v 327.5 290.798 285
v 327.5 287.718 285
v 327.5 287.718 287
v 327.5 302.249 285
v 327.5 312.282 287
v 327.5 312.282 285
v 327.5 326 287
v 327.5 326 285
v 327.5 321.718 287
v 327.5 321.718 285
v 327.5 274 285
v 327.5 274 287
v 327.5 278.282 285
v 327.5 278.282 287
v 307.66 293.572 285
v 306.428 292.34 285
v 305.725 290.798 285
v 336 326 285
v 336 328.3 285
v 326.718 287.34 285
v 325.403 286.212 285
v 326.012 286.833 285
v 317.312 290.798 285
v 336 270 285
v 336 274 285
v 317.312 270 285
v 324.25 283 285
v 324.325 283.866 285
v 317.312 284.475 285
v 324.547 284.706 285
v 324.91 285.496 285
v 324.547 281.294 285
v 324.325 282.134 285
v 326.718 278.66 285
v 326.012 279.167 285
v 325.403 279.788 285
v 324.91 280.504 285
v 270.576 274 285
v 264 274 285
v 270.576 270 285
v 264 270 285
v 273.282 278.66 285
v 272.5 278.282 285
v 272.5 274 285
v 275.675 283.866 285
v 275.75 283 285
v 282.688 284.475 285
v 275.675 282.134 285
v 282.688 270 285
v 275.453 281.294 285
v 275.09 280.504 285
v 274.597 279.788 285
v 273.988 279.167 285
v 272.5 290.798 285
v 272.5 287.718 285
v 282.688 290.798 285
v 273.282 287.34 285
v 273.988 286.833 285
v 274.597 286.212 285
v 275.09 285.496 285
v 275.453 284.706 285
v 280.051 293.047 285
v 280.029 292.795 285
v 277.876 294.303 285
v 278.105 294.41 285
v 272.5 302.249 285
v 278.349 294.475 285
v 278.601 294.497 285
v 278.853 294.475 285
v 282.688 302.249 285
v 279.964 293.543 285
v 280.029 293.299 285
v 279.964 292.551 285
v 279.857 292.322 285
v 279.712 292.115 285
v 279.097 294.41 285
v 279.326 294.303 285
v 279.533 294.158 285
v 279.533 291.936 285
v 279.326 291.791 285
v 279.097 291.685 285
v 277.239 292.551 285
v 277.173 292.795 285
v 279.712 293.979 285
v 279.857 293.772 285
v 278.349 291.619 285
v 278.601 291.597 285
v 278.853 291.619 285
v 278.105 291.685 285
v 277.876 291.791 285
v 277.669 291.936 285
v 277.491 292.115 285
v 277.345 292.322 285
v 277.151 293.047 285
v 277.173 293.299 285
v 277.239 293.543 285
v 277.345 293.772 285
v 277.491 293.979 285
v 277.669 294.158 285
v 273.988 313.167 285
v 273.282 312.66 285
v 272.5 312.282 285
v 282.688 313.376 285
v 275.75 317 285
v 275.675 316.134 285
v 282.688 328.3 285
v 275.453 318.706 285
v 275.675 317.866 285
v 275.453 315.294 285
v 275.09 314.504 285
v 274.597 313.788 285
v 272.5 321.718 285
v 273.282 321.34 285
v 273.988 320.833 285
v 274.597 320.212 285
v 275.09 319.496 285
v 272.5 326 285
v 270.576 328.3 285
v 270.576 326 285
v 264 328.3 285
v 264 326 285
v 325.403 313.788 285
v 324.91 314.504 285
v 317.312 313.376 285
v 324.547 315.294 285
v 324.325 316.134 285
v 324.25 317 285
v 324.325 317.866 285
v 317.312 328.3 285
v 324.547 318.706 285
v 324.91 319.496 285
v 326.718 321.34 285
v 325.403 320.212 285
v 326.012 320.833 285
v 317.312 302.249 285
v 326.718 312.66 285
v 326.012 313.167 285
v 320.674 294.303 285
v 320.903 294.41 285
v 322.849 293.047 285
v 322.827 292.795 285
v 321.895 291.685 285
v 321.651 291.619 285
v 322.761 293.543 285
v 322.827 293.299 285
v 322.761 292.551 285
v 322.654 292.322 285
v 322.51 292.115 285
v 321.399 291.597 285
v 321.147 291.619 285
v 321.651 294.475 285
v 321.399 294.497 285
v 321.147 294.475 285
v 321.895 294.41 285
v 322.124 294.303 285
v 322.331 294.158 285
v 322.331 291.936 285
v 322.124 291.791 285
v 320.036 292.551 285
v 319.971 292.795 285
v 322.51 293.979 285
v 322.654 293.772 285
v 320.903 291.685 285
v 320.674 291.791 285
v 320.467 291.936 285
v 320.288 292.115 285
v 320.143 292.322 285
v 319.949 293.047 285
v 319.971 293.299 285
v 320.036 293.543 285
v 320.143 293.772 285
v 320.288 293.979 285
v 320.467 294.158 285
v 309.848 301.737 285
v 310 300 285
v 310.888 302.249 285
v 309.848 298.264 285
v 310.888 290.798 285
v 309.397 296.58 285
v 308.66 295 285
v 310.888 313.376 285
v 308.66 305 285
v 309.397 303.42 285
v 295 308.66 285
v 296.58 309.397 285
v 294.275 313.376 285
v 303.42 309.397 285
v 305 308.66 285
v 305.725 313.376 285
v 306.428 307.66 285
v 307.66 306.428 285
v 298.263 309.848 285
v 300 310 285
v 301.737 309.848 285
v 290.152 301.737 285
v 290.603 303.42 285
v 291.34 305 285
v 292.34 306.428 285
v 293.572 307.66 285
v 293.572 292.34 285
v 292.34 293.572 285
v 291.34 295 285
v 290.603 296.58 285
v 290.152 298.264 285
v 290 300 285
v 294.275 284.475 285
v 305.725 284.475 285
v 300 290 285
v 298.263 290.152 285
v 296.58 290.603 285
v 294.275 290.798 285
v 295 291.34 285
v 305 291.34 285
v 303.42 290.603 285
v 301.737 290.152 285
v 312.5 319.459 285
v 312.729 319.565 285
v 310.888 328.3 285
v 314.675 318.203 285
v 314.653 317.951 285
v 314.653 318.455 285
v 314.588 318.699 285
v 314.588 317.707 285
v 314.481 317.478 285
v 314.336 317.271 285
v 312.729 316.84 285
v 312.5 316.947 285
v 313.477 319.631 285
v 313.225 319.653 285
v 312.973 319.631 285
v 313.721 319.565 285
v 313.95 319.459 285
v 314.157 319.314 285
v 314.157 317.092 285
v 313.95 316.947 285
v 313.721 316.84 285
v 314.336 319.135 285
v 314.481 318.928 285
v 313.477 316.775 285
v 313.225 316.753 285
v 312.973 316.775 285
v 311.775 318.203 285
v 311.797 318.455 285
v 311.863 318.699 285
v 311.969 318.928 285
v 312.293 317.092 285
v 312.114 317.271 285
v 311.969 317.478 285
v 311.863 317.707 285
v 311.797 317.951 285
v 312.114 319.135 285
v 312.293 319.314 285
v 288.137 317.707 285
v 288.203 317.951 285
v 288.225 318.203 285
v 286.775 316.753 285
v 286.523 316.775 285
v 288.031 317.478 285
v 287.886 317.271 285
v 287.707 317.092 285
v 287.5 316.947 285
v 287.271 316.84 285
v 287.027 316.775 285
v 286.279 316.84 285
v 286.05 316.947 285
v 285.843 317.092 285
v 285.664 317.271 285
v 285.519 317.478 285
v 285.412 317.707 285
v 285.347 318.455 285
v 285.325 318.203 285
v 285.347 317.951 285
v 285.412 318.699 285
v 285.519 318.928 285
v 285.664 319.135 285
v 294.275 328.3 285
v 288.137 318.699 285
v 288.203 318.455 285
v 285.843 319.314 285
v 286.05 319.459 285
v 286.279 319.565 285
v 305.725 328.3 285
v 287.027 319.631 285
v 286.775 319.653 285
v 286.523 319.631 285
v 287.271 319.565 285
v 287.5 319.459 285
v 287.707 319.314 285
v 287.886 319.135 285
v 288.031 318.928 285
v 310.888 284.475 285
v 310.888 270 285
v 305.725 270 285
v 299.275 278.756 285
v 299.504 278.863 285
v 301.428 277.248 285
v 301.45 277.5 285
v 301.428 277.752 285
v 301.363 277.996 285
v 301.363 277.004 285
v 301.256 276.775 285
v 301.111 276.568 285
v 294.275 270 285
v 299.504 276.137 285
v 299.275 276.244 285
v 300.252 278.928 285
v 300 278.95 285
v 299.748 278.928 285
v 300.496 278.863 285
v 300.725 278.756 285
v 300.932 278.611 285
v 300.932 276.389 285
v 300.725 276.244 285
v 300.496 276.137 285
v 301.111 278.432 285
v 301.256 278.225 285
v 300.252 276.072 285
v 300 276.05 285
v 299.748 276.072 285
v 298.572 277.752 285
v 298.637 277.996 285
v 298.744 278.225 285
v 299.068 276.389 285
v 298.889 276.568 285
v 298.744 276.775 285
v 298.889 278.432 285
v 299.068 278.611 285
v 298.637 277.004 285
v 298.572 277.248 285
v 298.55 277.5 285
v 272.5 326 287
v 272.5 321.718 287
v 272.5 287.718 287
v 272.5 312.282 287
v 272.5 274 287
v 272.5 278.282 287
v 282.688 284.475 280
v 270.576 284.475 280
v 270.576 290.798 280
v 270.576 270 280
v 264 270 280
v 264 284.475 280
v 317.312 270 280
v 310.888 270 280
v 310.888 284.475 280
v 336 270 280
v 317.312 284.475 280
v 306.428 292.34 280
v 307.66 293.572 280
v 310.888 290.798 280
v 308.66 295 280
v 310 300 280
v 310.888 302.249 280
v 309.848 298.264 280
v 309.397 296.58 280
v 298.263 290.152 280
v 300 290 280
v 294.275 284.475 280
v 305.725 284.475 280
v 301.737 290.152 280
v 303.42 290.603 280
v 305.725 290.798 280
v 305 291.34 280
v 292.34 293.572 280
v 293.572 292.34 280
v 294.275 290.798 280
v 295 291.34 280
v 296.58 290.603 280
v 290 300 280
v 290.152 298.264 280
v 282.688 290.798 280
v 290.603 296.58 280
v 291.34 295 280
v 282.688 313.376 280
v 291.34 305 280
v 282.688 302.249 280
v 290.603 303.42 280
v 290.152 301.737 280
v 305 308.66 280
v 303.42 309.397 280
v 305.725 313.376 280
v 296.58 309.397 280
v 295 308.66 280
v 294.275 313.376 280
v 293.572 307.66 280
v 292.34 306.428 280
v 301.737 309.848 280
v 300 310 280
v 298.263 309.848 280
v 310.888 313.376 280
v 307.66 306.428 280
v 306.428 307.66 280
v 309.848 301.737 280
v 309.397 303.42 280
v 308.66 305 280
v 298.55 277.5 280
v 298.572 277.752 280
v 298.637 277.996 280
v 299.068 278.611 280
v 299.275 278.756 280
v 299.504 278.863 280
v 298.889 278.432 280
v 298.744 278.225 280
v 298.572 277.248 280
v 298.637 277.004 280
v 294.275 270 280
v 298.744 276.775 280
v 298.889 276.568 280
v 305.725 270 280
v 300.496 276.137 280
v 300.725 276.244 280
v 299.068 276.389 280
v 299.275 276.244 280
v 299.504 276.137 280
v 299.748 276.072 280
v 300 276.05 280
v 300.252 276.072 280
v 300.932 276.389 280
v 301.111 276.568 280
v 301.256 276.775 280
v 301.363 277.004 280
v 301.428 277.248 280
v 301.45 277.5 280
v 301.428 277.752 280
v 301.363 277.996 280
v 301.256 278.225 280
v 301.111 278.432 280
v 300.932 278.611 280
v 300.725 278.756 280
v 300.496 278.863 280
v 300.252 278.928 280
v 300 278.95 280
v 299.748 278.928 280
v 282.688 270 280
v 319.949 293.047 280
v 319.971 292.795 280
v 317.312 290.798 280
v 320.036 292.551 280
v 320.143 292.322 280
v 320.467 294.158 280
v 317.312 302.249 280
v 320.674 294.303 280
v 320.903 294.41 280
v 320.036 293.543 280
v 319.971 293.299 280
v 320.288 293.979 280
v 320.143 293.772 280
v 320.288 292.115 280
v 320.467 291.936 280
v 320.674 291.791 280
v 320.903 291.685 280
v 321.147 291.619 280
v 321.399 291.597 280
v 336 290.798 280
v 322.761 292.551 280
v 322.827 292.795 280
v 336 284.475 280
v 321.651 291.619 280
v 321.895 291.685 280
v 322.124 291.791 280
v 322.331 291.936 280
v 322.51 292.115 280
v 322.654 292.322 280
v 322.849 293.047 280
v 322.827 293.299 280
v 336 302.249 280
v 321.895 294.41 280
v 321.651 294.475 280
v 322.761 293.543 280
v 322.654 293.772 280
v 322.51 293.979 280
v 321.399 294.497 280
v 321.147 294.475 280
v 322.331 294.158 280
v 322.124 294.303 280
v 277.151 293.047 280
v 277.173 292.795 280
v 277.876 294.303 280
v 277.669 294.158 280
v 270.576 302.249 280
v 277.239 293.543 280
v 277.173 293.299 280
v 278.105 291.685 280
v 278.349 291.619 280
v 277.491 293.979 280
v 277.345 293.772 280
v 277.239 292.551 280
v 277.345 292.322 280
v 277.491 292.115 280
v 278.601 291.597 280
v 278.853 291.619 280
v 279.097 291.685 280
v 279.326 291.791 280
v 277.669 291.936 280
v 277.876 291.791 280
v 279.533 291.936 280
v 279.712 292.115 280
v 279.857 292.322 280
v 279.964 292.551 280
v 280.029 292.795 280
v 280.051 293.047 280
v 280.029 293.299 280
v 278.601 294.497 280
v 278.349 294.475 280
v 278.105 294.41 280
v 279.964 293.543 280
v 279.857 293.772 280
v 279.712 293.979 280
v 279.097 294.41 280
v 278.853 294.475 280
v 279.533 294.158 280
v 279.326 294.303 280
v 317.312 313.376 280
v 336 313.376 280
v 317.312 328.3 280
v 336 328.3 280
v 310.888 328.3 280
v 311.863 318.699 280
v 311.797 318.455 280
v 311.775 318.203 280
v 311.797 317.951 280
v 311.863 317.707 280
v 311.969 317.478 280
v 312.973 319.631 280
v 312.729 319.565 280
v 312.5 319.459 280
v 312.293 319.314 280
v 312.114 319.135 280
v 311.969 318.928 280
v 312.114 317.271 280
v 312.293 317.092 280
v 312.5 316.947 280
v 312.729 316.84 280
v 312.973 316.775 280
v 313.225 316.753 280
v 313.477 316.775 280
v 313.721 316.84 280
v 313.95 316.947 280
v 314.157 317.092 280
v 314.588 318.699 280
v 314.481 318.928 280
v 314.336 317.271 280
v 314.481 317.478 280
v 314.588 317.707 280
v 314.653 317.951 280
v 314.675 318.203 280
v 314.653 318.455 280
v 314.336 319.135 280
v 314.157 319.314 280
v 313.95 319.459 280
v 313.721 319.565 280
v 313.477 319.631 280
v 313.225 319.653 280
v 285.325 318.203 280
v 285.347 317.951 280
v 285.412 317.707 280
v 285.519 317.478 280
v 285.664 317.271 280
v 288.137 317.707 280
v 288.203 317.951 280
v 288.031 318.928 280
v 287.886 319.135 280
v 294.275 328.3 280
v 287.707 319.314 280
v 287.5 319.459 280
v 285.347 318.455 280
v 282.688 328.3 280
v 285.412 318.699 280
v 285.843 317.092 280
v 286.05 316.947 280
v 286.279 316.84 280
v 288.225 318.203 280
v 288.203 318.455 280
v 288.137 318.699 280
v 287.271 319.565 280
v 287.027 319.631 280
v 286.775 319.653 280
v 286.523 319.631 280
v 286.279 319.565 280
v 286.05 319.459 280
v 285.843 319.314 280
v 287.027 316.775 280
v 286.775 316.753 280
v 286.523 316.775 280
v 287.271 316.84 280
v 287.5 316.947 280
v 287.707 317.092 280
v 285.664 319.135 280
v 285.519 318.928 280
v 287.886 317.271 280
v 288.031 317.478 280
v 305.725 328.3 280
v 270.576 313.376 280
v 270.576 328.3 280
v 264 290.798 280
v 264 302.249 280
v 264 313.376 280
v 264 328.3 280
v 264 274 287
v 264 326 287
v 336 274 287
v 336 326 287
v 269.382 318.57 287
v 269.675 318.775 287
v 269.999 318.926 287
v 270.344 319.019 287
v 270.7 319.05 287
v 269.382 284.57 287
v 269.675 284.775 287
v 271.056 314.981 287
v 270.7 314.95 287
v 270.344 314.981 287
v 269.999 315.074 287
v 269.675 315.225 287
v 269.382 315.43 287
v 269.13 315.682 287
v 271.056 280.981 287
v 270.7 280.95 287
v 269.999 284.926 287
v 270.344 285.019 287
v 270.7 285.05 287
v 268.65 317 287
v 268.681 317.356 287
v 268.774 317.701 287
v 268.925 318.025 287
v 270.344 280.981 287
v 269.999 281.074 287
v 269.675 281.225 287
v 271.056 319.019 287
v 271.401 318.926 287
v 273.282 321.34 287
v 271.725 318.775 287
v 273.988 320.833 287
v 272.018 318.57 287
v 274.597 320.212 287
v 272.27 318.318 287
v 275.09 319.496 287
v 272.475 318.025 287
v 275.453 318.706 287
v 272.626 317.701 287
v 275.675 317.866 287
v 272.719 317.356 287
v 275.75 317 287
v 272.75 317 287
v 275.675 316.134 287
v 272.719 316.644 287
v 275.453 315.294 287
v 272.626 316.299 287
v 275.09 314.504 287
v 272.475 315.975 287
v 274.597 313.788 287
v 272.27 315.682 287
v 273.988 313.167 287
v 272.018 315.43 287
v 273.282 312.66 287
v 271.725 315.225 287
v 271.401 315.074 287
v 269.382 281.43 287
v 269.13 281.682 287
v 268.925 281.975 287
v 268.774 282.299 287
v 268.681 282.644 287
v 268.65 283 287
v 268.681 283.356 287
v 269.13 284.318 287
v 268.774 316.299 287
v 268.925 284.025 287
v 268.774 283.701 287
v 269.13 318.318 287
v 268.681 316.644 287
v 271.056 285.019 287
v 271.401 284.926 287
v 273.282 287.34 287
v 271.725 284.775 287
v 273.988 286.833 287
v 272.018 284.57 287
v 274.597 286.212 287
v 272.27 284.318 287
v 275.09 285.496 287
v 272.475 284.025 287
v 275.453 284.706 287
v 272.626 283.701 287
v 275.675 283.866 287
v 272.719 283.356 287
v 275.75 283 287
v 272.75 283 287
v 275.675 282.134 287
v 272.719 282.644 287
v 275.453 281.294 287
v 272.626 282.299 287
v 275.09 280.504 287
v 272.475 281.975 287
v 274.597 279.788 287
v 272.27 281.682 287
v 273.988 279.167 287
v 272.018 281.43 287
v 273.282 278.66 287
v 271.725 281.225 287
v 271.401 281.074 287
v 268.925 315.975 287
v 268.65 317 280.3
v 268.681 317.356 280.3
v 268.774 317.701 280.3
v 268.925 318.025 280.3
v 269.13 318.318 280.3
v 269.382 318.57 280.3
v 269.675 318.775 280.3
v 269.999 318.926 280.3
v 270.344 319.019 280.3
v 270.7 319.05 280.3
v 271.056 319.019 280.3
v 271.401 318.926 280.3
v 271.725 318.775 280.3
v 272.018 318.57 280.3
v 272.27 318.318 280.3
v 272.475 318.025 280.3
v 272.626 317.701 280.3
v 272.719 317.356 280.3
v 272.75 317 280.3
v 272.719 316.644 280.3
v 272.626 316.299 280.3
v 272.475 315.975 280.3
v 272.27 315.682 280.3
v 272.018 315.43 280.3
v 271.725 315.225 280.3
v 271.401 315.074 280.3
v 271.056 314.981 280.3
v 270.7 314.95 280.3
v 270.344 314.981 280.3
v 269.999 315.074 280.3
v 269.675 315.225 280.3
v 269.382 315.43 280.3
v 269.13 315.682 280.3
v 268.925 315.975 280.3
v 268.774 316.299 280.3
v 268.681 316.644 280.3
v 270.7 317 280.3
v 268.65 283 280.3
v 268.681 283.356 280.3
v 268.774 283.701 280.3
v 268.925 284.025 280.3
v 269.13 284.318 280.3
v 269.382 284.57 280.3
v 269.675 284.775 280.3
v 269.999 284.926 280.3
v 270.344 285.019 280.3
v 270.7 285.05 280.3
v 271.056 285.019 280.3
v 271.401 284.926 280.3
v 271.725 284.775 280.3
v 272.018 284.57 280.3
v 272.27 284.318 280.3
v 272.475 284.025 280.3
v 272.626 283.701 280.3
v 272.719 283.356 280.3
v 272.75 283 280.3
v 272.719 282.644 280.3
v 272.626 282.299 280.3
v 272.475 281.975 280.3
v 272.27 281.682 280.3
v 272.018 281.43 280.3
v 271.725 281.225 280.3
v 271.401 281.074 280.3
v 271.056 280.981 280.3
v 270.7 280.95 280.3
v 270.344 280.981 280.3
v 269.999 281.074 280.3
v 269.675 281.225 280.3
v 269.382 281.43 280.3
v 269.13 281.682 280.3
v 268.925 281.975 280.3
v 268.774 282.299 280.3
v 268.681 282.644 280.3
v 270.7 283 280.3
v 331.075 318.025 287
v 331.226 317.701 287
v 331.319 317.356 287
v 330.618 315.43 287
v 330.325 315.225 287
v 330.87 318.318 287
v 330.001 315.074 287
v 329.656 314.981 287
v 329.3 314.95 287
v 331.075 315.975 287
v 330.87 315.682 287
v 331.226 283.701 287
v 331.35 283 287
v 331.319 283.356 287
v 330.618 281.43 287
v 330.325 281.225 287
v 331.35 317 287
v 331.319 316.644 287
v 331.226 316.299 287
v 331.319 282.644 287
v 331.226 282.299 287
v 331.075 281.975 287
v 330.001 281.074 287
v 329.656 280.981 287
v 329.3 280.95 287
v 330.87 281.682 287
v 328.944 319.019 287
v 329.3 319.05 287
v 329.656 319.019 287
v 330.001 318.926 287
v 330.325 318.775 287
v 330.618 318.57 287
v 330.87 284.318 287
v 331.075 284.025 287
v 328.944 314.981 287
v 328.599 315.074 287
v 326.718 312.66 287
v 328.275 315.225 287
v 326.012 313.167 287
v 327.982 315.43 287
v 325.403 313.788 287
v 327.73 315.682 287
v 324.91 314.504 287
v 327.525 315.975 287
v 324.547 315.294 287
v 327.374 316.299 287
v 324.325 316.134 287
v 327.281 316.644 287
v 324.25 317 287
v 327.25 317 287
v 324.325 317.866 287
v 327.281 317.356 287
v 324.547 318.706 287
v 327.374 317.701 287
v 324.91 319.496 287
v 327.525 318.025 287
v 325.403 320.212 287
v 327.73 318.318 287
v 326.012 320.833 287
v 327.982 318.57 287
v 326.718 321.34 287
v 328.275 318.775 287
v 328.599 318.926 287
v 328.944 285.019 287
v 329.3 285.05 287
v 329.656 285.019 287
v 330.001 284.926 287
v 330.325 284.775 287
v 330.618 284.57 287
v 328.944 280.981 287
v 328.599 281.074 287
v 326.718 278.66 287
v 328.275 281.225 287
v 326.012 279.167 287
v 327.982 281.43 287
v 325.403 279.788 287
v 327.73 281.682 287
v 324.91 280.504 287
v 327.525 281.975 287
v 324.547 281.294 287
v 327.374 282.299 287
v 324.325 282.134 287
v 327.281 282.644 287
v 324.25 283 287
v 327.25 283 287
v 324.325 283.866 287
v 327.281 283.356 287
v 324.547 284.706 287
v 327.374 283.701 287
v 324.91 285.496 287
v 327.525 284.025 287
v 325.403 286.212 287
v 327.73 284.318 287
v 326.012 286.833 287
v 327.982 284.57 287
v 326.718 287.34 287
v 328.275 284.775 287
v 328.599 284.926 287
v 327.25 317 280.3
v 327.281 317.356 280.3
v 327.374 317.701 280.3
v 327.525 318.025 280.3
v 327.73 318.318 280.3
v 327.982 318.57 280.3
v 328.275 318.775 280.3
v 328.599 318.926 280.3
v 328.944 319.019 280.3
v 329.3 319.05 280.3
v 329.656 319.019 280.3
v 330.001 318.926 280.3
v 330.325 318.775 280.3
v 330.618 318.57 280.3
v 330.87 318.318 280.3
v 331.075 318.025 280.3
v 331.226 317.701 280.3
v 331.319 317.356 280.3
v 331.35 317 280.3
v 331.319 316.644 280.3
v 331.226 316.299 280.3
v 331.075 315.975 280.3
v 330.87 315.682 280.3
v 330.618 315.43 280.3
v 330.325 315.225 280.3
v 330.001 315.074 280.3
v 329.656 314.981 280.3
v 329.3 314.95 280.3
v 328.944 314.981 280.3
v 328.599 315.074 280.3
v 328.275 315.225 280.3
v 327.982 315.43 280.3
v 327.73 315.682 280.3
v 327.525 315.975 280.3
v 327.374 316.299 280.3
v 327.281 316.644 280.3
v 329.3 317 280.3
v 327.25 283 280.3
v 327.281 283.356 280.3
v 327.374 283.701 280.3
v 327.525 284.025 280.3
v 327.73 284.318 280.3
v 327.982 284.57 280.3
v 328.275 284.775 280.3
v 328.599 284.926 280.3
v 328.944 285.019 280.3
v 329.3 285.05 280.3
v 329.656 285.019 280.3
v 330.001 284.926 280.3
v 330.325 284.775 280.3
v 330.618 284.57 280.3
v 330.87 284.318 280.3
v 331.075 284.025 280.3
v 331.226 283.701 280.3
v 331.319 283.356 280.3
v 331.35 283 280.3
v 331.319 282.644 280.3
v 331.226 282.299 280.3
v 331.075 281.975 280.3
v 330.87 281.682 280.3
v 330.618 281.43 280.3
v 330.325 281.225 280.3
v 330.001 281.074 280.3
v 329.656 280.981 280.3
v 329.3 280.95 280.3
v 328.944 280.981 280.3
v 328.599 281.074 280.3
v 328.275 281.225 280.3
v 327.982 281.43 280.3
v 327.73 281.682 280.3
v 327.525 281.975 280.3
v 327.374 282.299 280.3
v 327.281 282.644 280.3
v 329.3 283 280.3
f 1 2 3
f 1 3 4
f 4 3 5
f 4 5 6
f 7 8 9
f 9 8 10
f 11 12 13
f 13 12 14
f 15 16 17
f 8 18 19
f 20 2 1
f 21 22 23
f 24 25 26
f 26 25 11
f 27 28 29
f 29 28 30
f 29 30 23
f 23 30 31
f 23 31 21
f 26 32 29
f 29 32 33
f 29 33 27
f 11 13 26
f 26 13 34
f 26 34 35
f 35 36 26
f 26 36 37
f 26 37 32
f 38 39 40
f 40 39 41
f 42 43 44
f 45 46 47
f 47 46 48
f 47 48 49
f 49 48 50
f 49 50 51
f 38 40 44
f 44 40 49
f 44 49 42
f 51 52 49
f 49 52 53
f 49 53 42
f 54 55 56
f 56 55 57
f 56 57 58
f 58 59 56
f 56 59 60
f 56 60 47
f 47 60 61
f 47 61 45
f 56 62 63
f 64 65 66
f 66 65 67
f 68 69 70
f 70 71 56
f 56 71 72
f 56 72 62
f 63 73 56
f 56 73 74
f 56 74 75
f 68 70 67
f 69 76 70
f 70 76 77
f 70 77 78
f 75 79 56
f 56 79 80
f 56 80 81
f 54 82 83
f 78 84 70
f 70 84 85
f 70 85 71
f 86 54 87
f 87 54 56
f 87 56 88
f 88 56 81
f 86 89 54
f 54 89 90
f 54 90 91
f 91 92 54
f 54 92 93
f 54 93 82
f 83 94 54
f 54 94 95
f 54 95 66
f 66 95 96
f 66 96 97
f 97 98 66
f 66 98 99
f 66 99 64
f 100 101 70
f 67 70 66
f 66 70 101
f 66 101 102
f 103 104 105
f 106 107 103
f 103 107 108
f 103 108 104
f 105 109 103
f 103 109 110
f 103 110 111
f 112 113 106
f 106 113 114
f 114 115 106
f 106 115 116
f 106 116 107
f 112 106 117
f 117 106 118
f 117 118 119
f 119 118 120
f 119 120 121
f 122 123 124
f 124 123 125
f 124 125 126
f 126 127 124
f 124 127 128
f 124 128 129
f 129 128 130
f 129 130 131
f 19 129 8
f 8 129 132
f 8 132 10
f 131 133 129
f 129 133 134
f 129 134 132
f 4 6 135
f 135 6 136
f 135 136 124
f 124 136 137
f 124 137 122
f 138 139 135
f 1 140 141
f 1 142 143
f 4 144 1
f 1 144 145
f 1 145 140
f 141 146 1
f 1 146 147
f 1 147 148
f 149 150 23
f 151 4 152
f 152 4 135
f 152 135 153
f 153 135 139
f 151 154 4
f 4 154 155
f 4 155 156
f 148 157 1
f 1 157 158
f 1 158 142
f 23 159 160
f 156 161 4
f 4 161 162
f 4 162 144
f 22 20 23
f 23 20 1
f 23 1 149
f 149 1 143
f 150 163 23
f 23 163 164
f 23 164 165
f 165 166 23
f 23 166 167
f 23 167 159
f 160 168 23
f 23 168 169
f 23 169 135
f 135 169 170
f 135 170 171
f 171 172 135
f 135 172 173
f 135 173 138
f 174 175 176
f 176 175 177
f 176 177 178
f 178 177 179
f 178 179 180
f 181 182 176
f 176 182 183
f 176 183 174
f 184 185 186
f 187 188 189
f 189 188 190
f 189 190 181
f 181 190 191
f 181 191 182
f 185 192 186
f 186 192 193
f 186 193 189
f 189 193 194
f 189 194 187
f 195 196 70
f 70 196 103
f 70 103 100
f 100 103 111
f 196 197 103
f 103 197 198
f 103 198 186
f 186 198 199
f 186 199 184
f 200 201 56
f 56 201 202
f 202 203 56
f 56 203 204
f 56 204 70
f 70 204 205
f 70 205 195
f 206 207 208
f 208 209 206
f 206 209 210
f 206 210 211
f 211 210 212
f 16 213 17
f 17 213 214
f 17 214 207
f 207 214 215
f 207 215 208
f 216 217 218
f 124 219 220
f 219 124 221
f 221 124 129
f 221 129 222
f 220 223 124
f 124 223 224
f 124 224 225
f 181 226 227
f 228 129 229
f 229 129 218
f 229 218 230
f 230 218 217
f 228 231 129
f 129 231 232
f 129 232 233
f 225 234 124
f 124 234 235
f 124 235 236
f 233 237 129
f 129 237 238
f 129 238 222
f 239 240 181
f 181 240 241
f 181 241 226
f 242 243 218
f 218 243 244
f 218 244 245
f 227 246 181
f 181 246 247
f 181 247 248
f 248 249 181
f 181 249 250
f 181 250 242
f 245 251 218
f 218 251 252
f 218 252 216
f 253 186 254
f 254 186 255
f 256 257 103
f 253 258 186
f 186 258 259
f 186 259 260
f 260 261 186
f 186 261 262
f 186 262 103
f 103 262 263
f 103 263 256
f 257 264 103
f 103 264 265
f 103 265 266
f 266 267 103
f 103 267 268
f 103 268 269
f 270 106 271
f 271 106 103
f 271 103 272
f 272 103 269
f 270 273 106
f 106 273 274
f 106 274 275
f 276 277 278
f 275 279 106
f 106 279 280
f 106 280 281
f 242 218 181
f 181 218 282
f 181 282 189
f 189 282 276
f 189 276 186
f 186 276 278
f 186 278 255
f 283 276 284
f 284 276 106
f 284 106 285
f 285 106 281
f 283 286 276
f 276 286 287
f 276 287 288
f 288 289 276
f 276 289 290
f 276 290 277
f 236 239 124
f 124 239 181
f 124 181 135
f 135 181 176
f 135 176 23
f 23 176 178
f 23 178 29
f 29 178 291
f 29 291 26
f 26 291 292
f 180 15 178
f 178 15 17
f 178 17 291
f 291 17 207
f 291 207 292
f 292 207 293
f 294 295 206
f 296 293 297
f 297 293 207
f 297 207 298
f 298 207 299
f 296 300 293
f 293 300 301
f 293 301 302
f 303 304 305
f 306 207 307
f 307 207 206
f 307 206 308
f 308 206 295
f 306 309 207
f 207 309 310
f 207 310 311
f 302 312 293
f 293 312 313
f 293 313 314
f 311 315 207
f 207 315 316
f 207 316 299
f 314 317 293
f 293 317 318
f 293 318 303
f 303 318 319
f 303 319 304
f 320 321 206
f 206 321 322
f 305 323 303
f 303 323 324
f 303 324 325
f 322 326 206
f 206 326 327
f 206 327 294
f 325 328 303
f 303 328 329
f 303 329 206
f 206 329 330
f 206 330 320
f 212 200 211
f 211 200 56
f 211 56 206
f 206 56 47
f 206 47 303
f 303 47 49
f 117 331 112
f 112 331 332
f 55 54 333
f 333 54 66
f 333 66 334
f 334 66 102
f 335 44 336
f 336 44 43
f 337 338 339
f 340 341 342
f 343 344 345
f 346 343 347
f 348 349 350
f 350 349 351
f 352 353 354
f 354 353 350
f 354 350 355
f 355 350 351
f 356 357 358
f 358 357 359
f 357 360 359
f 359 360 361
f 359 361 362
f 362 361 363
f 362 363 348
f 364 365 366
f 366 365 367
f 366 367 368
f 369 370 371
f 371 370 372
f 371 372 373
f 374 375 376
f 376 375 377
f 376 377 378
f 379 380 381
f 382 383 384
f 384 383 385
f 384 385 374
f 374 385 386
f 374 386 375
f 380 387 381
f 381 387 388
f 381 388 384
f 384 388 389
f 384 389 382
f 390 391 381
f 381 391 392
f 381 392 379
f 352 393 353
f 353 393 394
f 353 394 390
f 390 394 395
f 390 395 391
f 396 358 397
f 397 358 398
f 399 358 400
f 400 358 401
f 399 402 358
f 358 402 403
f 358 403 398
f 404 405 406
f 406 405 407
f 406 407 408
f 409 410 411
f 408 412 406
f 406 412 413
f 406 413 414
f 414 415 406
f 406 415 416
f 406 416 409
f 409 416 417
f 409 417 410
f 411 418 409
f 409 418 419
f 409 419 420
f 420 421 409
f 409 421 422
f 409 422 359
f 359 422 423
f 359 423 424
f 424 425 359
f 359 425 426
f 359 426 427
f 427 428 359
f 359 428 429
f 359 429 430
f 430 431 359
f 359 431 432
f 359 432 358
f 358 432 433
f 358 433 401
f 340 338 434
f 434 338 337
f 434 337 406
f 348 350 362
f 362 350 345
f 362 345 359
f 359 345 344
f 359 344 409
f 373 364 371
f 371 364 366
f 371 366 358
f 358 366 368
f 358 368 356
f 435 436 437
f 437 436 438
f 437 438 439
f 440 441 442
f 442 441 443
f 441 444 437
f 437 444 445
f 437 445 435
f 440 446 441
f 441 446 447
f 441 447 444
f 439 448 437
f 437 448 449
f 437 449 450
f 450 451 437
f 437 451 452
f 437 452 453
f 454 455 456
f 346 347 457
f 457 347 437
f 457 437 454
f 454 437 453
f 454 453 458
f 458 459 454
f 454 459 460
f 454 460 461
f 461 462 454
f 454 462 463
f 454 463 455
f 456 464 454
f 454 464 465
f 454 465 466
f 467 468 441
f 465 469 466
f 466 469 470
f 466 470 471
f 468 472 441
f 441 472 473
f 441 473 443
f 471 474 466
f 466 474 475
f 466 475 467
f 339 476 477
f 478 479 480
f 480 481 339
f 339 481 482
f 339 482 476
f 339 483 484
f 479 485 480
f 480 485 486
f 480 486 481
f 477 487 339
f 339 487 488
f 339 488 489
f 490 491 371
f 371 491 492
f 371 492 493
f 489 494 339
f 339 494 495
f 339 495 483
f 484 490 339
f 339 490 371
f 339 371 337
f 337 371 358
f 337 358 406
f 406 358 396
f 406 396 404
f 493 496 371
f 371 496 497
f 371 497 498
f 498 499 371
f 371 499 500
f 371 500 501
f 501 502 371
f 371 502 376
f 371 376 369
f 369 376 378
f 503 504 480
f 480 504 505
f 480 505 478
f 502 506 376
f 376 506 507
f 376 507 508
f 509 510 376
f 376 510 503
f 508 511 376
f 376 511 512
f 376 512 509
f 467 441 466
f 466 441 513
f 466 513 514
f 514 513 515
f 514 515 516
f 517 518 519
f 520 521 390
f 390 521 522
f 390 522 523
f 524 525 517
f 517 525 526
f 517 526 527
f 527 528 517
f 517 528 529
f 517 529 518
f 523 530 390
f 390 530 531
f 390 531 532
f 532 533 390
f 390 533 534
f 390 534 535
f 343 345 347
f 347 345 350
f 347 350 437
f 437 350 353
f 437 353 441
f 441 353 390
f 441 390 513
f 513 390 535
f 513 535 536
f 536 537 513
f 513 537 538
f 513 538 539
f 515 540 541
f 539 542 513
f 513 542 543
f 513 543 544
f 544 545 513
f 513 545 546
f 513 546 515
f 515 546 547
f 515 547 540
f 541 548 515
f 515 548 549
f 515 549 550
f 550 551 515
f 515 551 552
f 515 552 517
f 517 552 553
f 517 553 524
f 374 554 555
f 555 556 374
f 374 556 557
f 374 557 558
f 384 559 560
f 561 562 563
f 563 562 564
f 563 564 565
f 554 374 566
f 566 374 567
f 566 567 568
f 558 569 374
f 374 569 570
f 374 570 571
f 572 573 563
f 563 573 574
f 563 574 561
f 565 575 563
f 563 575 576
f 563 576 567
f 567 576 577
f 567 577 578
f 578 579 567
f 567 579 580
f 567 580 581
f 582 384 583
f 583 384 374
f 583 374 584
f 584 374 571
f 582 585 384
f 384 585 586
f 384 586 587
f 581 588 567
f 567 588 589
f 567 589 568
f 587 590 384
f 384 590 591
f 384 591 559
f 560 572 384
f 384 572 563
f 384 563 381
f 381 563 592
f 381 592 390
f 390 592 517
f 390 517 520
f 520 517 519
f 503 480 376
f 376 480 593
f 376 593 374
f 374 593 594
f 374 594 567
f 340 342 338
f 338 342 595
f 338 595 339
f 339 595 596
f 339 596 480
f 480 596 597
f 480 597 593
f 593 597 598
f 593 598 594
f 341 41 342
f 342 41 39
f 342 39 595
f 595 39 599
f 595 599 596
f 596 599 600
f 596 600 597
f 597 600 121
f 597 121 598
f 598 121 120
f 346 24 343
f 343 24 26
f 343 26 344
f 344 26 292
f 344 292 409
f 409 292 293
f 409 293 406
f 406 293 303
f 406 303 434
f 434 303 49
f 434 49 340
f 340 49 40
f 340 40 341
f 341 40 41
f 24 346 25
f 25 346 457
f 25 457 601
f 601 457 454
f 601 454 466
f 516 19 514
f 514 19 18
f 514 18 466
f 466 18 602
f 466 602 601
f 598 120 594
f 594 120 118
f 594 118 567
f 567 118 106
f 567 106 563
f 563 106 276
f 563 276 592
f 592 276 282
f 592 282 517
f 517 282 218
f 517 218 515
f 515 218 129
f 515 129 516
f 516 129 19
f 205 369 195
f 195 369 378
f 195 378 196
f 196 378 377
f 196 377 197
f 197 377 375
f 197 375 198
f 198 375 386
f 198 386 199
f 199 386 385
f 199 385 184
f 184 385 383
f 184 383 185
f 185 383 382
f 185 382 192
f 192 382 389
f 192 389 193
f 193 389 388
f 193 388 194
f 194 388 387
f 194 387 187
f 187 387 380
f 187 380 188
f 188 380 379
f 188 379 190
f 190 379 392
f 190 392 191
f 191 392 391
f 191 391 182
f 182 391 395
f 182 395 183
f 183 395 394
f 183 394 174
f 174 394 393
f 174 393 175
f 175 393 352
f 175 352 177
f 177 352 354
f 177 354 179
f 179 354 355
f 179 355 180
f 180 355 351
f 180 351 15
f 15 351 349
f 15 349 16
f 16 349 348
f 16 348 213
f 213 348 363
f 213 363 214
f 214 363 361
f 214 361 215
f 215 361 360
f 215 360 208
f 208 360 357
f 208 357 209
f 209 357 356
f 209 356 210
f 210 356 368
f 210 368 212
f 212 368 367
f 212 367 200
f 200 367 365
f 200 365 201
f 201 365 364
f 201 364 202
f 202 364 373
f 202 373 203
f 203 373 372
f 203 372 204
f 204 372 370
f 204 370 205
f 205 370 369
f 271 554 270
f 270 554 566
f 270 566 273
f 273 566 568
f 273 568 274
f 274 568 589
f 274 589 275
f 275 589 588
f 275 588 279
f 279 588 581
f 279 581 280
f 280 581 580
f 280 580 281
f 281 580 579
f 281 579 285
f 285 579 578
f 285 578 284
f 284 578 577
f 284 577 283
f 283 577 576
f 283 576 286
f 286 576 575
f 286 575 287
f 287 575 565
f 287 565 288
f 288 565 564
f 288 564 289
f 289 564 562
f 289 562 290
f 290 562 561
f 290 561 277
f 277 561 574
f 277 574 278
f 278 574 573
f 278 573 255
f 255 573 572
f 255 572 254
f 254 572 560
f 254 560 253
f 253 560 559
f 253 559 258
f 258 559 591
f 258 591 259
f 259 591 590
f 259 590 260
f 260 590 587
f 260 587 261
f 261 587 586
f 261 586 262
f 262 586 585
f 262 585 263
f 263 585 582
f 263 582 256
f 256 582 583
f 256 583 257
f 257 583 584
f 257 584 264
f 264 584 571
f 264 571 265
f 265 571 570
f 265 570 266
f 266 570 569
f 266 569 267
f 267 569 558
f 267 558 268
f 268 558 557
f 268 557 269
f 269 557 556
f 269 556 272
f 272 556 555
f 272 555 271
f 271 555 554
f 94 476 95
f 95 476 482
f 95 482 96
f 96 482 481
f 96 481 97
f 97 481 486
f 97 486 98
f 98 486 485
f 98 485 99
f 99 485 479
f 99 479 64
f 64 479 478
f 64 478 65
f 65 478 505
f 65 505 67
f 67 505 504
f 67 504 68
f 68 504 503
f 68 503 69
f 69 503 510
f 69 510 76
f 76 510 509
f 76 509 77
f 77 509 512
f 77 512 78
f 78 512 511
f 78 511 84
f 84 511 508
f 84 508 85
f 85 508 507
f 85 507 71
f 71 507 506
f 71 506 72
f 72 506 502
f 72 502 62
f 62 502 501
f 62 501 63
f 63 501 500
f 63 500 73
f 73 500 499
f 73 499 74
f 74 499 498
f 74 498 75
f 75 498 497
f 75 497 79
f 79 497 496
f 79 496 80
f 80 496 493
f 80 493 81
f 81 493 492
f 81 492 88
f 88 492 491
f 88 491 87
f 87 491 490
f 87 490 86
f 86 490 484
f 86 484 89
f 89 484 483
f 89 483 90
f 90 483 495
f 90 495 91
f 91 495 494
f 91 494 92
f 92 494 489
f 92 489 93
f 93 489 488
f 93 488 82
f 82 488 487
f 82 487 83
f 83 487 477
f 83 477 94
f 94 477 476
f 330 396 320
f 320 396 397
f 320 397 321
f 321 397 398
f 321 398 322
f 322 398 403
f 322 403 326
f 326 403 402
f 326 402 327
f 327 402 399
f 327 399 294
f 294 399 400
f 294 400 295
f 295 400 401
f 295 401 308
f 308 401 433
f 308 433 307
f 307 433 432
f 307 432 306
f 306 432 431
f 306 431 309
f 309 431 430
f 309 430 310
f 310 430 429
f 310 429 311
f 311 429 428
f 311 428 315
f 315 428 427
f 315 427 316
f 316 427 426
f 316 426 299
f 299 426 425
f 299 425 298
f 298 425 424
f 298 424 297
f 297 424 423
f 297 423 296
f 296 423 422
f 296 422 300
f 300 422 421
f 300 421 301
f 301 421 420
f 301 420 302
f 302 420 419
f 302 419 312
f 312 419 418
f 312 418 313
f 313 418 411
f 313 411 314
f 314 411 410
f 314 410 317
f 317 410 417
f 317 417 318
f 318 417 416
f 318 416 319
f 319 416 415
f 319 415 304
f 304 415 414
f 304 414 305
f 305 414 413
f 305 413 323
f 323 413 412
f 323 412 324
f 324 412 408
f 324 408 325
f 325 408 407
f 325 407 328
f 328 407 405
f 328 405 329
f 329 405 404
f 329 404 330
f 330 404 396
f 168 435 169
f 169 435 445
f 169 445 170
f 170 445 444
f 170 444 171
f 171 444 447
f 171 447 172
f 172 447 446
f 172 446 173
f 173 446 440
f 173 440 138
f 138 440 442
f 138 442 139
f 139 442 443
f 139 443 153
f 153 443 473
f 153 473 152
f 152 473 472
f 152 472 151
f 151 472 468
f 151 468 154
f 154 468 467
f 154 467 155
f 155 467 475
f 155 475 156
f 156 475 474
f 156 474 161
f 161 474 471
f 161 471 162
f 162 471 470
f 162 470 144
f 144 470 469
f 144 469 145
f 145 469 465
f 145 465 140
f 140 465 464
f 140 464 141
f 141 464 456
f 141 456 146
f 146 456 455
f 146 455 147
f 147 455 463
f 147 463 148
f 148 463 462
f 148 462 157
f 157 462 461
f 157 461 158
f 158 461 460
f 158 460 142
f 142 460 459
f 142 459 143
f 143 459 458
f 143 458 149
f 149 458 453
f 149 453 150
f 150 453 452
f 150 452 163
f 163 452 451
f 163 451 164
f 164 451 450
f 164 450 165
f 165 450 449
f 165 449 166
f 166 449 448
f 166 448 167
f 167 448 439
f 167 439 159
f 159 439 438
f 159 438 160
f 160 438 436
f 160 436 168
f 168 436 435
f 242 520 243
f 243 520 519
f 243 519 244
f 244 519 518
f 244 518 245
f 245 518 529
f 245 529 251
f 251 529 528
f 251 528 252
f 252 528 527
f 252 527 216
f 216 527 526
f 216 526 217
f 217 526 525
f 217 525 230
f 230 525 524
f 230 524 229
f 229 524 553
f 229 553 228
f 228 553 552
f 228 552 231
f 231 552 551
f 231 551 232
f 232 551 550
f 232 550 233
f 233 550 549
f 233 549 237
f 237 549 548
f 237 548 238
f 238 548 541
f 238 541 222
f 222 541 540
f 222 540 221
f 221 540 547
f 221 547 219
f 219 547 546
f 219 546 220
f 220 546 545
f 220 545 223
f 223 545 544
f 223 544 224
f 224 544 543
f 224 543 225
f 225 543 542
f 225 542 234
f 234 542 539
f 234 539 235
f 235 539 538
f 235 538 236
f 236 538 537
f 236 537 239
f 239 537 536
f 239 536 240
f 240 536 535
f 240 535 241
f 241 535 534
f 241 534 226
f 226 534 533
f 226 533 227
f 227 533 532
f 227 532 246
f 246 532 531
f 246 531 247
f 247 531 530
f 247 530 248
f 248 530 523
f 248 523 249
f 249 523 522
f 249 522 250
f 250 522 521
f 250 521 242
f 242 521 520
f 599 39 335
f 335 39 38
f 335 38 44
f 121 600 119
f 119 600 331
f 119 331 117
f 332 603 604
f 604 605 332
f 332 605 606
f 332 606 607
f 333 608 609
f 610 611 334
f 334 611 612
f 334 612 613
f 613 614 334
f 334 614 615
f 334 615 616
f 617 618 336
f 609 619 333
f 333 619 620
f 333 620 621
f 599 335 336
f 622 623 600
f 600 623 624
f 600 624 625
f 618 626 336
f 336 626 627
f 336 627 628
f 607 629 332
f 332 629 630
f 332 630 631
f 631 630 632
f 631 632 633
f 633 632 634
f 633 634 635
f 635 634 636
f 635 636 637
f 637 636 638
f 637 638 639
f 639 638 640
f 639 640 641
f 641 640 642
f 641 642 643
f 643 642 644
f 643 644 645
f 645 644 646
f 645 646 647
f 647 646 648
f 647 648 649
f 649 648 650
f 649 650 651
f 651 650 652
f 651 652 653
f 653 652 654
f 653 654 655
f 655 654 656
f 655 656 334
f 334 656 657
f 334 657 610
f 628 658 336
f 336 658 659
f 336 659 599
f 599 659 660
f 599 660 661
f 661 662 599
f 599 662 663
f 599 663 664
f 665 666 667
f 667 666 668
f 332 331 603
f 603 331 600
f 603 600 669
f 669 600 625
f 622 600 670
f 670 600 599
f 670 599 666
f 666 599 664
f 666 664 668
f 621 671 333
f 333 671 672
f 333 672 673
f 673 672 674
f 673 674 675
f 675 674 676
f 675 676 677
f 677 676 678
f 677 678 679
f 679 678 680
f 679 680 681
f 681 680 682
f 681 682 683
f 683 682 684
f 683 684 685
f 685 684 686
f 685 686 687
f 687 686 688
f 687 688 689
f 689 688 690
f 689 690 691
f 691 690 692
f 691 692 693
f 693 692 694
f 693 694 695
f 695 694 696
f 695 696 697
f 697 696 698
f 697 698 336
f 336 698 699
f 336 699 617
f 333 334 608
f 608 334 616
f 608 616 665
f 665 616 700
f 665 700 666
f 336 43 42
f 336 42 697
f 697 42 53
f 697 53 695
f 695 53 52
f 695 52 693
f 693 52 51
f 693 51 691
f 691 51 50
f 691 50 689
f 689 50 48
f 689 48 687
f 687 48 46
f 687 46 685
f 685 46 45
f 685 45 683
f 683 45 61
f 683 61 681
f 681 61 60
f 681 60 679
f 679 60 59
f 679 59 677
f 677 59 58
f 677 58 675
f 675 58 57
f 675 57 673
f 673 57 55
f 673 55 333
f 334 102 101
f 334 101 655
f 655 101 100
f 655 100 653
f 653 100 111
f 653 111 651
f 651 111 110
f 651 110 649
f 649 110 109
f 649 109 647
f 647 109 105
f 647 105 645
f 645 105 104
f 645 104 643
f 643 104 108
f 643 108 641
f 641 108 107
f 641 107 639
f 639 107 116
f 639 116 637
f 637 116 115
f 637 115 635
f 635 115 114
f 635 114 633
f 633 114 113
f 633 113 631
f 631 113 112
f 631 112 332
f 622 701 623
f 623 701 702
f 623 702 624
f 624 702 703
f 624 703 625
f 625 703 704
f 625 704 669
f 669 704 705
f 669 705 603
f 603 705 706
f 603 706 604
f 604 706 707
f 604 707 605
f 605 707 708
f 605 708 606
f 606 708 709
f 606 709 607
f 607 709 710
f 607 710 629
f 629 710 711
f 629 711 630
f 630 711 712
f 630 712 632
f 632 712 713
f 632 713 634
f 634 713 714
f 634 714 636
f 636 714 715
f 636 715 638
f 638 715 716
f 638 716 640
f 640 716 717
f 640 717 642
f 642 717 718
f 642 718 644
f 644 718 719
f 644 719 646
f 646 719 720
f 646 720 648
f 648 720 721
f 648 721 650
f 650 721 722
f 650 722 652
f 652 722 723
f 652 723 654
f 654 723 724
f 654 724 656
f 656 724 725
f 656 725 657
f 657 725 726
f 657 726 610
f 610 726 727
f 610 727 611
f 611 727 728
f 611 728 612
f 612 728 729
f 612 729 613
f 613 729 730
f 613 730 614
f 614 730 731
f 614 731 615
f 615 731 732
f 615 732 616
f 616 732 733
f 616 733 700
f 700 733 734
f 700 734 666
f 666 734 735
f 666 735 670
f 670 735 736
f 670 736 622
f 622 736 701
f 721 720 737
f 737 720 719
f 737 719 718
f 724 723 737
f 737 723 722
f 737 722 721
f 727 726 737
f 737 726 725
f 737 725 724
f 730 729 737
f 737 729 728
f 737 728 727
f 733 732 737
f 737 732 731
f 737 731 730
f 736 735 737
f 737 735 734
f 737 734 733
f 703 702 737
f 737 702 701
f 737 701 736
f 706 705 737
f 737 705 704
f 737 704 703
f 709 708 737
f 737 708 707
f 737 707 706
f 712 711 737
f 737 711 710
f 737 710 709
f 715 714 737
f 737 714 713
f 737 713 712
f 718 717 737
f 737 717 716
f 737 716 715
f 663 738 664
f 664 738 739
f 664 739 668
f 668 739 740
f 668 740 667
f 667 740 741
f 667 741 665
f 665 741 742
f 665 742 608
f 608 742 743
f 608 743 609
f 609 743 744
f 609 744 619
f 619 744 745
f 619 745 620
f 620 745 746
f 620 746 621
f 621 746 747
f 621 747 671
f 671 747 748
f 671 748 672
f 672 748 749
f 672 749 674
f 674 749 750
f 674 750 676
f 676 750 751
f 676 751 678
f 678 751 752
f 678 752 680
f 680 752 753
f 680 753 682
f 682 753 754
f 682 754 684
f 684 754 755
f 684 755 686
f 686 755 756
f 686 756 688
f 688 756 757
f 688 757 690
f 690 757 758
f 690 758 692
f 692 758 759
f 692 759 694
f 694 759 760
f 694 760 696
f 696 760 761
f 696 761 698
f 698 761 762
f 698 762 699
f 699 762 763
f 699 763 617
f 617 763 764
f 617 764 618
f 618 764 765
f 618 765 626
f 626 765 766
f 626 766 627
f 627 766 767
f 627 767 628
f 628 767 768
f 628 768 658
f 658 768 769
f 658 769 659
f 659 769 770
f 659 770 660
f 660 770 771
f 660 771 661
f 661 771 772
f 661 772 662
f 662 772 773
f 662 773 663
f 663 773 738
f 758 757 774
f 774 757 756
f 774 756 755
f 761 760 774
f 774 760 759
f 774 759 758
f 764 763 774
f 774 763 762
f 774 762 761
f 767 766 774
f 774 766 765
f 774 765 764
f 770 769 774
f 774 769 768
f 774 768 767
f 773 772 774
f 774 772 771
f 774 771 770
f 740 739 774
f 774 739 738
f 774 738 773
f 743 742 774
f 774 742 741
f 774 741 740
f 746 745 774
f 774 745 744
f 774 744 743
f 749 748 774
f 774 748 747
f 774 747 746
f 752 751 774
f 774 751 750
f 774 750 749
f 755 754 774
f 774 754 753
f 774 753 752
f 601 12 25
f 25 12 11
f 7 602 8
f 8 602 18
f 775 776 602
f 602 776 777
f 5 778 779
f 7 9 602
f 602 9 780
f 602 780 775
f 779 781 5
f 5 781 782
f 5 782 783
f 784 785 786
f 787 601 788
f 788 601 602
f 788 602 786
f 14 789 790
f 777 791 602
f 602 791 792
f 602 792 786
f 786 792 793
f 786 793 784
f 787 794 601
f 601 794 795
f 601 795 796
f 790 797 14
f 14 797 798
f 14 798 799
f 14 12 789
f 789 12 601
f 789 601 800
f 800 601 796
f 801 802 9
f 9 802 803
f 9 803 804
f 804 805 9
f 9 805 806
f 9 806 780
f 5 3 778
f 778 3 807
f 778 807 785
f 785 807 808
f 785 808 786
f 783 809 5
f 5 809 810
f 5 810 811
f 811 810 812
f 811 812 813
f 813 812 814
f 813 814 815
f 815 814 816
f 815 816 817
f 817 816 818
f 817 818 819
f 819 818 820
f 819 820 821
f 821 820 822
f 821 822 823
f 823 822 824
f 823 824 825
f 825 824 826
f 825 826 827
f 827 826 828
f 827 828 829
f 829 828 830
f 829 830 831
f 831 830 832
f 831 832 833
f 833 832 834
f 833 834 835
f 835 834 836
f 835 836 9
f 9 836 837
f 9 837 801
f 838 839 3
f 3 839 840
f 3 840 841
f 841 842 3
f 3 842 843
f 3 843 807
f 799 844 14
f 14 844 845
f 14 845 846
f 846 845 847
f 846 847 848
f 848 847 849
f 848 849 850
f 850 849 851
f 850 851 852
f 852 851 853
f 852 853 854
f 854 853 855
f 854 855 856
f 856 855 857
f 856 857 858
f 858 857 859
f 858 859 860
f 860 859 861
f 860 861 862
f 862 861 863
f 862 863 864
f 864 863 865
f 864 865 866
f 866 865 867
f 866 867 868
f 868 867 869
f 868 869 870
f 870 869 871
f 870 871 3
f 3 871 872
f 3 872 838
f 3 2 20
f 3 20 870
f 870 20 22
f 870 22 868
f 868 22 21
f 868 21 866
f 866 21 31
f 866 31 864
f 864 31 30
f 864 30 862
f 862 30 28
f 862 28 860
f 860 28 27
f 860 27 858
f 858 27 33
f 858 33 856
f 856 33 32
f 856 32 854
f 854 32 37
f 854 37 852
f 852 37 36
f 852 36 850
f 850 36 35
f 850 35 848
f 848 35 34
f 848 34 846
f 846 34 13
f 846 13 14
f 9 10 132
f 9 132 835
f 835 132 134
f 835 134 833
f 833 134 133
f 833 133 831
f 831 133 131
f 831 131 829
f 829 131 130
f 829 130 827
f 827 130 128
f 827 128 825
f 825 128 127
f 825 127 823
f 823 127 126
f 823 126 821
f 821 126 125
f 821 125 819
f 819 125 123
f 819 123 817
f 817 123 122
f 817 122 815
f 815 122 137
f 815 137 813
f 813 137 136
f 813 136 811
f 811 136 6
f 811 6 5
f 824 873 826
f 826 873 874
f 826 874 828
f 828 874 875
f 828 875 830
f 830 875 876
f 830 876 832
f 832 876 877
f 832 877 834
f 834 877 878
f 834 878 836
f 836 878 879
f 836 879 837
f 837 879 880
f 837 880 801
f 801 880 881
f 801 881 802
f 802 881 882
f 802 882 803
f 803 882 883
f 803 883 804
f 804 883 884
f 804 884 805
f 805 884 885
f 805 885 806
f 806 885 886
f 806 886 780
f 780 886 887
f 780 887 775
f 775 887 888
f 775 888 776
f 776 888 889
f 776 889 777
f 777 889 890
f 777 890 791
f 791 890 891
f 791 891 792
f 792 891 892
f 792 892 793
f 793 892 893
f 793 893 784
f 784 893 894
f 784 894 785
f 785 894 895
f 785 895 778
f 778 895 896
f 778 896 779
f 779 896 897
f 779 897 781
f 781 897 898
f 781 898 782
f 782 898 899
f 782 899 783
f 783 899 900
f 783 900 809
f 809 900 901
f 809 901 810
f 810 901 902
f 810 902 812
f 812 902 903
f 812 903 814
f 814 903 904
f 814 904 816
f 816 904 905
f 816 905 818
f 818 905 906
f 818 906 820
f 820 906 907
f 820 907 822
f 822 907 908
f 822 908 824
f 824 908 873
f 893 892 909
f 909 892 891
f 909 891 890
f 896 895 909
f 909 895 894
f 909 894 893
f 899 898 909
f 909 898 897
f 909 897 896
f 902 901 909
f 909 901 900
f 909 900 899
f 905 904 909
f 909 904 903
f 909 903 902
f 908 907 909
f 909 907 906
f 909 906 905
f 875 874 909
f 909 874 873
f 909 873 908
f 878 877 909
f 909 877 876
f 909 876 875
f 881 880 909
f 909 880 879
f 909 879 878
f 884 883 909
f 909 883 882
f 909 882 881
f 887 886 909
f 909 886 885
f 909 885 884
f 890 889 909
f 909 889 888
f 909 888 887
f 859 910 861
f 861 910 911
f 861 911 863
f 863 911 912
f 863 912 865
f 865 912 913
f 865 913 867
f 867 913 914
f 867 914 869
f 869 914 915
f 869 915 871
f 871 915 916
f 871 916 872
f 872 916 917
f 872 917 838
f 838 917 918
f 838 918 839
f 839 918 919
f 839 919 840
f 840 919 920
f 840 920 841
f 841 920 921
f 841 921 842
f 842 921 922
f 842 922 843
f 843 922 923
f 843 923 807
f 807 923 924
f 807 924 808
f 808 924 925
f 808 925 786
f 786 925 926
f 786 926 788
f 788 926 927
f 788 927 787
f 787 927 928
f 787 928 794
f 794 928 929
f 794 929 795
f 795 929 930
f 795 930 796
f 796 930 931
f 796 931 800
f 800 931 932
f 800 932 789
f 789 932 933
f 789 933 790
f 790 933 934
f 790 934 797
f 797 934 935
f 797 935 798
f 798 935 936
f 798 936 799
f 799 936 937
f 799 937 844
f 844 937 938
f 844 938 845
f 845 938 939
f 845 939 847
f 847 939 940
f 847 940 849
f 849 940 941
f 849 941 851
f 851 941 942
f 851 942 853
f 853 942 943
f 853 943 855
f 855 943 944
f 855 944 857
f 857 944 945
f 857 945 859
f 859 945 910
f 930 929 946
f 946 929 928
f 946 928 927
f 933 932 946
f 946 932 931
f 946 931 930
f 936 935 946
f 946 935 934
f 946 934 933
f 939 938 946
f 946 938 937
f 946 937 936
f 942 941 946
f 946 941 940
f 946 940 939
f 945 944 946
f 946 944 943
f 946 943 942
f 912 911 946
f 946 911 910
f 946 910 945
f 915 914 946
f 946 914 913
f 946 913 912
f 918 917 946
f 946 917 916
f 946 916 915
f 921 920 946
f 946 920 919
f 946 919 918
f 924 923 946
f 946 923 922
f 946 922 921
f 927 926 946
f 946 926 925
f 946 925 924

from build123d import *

# Parameters (mm, degrees)
SKETCH1_W           = 72
SKETCH1_H           = 58.3
SKETCH1_R           = 10
SKETCH1_R_2         = 1.45
BOSS_EXTRUDE1_DEPTH = 5
SKETCH2_W           = 8.5
SKETCH2_H           = 52
BOSS_EXTRUDE2_DEPTH = 7
SKETCH3_R           = 5.05
BOSS_EXTRUDE3_DEPTH = 7
SKETCH4_R           = 5.05
BOSS_EXTRUDE4_DEPTH = 7
SKETCH5_R           = 2.05
CUT_EXTRUDE1_DEPTH  = 6.7
SKETCH6_W           = 8.5
SKETCH6_H           = 52
BOSS_EXTRUDE5_DEPTH = 7
SKETCH7_R           = 5.05
BOSS_EXTRUDE6_DEPTH = 7
SKETCH8_R           = 5.05
BOSS_EXTRUDE7_DEPTH = 7
SKETCH9_R           = 2.05
CUT_EXTRUDE2_DEPTH  = 6.7


with BuildPart() as part:
    # Sketch1 → Boss-Extrude1 (new body)
    with BuildSketch(Plane.XY.offset(280)):
        with Locations((300, 299.15)):
            Rectangle(SKETCH1_W, SKETCH1_H)
        with Locations((300, 300)):
            Circle(SKETCH1_R, mode=Mode.SUBTRACT)
        with Locations((286.774831823, 318.202882373)):
            Circle(SKETCH1_R_2, mode=Mode.SUBTRACT)
        with Locations((278.601228383, 293.047117627)):
            Circle(SKETCH1_R_2, mode=Mode.SUBTRACT)
        with Locations((300, 277.5)):
            Circle(SKETCH1_R_2, mode=Mode.SUBTRACT)
        with Locations((321.398771617, 293.047117627)):
            Circle(SKETCH1_R_2, mode=Mode.SUBTRACT)
        with Locations((313.225168177, 318.202882373)):
            Circle(SKETCH1_R_2, mode=Mode.SUBTRACT)
    extrude(amount=BOSS_EXTRUDE1_DEPTH)

    # Sketch2 → Boss-Extrude2 (add)
    with BuildSketch(Plane.XY.offset(280)):
        with Locations((268.25, 300)):
            Rectangle(SKETCH2_W, SKETCH2_H)
    extrude(amount=BOSS_EXTRUDE2_DEPTH)

    # Sketch3 → Boss-Extrude3 (add)
    with BuildSketch(Plane.XY.offset(280)):
        with Locations((270.7, 283)):
            Circle(SKETCH3_R)
    extrude(amount=BOSS_EXTRUDE3_DEPTH)

    # Sketch4 → Boss-Extrude4 (add)
    with BuildSketch(Plane.XY.offset(280)):
        with Locations((270.7, 317)):
            Circle(SKETCH4_R)
    extrude(amount=BOSS_EXTRUDE4_DEPTH)

    # Sketch5 → Cut-Extrude1 (cut)
    with BuildSketch(Plane.XY.offset(280.3)):
        with Locations((270.7, 283)):
            Circle(SKETCH5_R)
        with Locations((270.7, 317)):
            Circle(SKETCH5_R)
    extrude(amount=CUT_EXTRUDE1_DEPTH, mode=Mode.SUBTRACT)

    # Sketch6 → Boss-Extrude5 (add)
    with BuildSketch(Plane.XY.offset(280)):
        with Locations((331.75, 300)):
            Rectangle(SKETCH6_W, SKETCH6_H)
    extrude(amount=BOSS_EXTRUDE5_DEPTH)

    # Sketch7 → Boss-Extrude6 (add)
    with BuildSketch(Plane.XY.offset(280)):
        with Locations((329.3, 283)):
            Circle(SKETCH7_R)
    extrude(amount=BOSS_EXTRUDE6_DEPTH)

    # Sketch8 → Boss-Extrude7 (add)
    with BuildSketch(Plane.XY.offset(280)):
        with Locations((329.3, 317)):
            Circle(SKETCH8_R)
    extrude(amount=BOSS_EXTRUDE7_DEPTH)

    # Sketch9 → Cut-Extrude2 (cut)
    with BuildSketch(Plane.XY.offset(280.3)):
        with Locations((329.3, 283)):
            Circle(SKETCH9_R)
        with Locations((329.3, 317)):
            Circle(SKETCH9_R)
    extrude(amount=CUT_EXTRUDE2_DEPTH, mode=Mode.SUBTRACT)


solid = part.part
